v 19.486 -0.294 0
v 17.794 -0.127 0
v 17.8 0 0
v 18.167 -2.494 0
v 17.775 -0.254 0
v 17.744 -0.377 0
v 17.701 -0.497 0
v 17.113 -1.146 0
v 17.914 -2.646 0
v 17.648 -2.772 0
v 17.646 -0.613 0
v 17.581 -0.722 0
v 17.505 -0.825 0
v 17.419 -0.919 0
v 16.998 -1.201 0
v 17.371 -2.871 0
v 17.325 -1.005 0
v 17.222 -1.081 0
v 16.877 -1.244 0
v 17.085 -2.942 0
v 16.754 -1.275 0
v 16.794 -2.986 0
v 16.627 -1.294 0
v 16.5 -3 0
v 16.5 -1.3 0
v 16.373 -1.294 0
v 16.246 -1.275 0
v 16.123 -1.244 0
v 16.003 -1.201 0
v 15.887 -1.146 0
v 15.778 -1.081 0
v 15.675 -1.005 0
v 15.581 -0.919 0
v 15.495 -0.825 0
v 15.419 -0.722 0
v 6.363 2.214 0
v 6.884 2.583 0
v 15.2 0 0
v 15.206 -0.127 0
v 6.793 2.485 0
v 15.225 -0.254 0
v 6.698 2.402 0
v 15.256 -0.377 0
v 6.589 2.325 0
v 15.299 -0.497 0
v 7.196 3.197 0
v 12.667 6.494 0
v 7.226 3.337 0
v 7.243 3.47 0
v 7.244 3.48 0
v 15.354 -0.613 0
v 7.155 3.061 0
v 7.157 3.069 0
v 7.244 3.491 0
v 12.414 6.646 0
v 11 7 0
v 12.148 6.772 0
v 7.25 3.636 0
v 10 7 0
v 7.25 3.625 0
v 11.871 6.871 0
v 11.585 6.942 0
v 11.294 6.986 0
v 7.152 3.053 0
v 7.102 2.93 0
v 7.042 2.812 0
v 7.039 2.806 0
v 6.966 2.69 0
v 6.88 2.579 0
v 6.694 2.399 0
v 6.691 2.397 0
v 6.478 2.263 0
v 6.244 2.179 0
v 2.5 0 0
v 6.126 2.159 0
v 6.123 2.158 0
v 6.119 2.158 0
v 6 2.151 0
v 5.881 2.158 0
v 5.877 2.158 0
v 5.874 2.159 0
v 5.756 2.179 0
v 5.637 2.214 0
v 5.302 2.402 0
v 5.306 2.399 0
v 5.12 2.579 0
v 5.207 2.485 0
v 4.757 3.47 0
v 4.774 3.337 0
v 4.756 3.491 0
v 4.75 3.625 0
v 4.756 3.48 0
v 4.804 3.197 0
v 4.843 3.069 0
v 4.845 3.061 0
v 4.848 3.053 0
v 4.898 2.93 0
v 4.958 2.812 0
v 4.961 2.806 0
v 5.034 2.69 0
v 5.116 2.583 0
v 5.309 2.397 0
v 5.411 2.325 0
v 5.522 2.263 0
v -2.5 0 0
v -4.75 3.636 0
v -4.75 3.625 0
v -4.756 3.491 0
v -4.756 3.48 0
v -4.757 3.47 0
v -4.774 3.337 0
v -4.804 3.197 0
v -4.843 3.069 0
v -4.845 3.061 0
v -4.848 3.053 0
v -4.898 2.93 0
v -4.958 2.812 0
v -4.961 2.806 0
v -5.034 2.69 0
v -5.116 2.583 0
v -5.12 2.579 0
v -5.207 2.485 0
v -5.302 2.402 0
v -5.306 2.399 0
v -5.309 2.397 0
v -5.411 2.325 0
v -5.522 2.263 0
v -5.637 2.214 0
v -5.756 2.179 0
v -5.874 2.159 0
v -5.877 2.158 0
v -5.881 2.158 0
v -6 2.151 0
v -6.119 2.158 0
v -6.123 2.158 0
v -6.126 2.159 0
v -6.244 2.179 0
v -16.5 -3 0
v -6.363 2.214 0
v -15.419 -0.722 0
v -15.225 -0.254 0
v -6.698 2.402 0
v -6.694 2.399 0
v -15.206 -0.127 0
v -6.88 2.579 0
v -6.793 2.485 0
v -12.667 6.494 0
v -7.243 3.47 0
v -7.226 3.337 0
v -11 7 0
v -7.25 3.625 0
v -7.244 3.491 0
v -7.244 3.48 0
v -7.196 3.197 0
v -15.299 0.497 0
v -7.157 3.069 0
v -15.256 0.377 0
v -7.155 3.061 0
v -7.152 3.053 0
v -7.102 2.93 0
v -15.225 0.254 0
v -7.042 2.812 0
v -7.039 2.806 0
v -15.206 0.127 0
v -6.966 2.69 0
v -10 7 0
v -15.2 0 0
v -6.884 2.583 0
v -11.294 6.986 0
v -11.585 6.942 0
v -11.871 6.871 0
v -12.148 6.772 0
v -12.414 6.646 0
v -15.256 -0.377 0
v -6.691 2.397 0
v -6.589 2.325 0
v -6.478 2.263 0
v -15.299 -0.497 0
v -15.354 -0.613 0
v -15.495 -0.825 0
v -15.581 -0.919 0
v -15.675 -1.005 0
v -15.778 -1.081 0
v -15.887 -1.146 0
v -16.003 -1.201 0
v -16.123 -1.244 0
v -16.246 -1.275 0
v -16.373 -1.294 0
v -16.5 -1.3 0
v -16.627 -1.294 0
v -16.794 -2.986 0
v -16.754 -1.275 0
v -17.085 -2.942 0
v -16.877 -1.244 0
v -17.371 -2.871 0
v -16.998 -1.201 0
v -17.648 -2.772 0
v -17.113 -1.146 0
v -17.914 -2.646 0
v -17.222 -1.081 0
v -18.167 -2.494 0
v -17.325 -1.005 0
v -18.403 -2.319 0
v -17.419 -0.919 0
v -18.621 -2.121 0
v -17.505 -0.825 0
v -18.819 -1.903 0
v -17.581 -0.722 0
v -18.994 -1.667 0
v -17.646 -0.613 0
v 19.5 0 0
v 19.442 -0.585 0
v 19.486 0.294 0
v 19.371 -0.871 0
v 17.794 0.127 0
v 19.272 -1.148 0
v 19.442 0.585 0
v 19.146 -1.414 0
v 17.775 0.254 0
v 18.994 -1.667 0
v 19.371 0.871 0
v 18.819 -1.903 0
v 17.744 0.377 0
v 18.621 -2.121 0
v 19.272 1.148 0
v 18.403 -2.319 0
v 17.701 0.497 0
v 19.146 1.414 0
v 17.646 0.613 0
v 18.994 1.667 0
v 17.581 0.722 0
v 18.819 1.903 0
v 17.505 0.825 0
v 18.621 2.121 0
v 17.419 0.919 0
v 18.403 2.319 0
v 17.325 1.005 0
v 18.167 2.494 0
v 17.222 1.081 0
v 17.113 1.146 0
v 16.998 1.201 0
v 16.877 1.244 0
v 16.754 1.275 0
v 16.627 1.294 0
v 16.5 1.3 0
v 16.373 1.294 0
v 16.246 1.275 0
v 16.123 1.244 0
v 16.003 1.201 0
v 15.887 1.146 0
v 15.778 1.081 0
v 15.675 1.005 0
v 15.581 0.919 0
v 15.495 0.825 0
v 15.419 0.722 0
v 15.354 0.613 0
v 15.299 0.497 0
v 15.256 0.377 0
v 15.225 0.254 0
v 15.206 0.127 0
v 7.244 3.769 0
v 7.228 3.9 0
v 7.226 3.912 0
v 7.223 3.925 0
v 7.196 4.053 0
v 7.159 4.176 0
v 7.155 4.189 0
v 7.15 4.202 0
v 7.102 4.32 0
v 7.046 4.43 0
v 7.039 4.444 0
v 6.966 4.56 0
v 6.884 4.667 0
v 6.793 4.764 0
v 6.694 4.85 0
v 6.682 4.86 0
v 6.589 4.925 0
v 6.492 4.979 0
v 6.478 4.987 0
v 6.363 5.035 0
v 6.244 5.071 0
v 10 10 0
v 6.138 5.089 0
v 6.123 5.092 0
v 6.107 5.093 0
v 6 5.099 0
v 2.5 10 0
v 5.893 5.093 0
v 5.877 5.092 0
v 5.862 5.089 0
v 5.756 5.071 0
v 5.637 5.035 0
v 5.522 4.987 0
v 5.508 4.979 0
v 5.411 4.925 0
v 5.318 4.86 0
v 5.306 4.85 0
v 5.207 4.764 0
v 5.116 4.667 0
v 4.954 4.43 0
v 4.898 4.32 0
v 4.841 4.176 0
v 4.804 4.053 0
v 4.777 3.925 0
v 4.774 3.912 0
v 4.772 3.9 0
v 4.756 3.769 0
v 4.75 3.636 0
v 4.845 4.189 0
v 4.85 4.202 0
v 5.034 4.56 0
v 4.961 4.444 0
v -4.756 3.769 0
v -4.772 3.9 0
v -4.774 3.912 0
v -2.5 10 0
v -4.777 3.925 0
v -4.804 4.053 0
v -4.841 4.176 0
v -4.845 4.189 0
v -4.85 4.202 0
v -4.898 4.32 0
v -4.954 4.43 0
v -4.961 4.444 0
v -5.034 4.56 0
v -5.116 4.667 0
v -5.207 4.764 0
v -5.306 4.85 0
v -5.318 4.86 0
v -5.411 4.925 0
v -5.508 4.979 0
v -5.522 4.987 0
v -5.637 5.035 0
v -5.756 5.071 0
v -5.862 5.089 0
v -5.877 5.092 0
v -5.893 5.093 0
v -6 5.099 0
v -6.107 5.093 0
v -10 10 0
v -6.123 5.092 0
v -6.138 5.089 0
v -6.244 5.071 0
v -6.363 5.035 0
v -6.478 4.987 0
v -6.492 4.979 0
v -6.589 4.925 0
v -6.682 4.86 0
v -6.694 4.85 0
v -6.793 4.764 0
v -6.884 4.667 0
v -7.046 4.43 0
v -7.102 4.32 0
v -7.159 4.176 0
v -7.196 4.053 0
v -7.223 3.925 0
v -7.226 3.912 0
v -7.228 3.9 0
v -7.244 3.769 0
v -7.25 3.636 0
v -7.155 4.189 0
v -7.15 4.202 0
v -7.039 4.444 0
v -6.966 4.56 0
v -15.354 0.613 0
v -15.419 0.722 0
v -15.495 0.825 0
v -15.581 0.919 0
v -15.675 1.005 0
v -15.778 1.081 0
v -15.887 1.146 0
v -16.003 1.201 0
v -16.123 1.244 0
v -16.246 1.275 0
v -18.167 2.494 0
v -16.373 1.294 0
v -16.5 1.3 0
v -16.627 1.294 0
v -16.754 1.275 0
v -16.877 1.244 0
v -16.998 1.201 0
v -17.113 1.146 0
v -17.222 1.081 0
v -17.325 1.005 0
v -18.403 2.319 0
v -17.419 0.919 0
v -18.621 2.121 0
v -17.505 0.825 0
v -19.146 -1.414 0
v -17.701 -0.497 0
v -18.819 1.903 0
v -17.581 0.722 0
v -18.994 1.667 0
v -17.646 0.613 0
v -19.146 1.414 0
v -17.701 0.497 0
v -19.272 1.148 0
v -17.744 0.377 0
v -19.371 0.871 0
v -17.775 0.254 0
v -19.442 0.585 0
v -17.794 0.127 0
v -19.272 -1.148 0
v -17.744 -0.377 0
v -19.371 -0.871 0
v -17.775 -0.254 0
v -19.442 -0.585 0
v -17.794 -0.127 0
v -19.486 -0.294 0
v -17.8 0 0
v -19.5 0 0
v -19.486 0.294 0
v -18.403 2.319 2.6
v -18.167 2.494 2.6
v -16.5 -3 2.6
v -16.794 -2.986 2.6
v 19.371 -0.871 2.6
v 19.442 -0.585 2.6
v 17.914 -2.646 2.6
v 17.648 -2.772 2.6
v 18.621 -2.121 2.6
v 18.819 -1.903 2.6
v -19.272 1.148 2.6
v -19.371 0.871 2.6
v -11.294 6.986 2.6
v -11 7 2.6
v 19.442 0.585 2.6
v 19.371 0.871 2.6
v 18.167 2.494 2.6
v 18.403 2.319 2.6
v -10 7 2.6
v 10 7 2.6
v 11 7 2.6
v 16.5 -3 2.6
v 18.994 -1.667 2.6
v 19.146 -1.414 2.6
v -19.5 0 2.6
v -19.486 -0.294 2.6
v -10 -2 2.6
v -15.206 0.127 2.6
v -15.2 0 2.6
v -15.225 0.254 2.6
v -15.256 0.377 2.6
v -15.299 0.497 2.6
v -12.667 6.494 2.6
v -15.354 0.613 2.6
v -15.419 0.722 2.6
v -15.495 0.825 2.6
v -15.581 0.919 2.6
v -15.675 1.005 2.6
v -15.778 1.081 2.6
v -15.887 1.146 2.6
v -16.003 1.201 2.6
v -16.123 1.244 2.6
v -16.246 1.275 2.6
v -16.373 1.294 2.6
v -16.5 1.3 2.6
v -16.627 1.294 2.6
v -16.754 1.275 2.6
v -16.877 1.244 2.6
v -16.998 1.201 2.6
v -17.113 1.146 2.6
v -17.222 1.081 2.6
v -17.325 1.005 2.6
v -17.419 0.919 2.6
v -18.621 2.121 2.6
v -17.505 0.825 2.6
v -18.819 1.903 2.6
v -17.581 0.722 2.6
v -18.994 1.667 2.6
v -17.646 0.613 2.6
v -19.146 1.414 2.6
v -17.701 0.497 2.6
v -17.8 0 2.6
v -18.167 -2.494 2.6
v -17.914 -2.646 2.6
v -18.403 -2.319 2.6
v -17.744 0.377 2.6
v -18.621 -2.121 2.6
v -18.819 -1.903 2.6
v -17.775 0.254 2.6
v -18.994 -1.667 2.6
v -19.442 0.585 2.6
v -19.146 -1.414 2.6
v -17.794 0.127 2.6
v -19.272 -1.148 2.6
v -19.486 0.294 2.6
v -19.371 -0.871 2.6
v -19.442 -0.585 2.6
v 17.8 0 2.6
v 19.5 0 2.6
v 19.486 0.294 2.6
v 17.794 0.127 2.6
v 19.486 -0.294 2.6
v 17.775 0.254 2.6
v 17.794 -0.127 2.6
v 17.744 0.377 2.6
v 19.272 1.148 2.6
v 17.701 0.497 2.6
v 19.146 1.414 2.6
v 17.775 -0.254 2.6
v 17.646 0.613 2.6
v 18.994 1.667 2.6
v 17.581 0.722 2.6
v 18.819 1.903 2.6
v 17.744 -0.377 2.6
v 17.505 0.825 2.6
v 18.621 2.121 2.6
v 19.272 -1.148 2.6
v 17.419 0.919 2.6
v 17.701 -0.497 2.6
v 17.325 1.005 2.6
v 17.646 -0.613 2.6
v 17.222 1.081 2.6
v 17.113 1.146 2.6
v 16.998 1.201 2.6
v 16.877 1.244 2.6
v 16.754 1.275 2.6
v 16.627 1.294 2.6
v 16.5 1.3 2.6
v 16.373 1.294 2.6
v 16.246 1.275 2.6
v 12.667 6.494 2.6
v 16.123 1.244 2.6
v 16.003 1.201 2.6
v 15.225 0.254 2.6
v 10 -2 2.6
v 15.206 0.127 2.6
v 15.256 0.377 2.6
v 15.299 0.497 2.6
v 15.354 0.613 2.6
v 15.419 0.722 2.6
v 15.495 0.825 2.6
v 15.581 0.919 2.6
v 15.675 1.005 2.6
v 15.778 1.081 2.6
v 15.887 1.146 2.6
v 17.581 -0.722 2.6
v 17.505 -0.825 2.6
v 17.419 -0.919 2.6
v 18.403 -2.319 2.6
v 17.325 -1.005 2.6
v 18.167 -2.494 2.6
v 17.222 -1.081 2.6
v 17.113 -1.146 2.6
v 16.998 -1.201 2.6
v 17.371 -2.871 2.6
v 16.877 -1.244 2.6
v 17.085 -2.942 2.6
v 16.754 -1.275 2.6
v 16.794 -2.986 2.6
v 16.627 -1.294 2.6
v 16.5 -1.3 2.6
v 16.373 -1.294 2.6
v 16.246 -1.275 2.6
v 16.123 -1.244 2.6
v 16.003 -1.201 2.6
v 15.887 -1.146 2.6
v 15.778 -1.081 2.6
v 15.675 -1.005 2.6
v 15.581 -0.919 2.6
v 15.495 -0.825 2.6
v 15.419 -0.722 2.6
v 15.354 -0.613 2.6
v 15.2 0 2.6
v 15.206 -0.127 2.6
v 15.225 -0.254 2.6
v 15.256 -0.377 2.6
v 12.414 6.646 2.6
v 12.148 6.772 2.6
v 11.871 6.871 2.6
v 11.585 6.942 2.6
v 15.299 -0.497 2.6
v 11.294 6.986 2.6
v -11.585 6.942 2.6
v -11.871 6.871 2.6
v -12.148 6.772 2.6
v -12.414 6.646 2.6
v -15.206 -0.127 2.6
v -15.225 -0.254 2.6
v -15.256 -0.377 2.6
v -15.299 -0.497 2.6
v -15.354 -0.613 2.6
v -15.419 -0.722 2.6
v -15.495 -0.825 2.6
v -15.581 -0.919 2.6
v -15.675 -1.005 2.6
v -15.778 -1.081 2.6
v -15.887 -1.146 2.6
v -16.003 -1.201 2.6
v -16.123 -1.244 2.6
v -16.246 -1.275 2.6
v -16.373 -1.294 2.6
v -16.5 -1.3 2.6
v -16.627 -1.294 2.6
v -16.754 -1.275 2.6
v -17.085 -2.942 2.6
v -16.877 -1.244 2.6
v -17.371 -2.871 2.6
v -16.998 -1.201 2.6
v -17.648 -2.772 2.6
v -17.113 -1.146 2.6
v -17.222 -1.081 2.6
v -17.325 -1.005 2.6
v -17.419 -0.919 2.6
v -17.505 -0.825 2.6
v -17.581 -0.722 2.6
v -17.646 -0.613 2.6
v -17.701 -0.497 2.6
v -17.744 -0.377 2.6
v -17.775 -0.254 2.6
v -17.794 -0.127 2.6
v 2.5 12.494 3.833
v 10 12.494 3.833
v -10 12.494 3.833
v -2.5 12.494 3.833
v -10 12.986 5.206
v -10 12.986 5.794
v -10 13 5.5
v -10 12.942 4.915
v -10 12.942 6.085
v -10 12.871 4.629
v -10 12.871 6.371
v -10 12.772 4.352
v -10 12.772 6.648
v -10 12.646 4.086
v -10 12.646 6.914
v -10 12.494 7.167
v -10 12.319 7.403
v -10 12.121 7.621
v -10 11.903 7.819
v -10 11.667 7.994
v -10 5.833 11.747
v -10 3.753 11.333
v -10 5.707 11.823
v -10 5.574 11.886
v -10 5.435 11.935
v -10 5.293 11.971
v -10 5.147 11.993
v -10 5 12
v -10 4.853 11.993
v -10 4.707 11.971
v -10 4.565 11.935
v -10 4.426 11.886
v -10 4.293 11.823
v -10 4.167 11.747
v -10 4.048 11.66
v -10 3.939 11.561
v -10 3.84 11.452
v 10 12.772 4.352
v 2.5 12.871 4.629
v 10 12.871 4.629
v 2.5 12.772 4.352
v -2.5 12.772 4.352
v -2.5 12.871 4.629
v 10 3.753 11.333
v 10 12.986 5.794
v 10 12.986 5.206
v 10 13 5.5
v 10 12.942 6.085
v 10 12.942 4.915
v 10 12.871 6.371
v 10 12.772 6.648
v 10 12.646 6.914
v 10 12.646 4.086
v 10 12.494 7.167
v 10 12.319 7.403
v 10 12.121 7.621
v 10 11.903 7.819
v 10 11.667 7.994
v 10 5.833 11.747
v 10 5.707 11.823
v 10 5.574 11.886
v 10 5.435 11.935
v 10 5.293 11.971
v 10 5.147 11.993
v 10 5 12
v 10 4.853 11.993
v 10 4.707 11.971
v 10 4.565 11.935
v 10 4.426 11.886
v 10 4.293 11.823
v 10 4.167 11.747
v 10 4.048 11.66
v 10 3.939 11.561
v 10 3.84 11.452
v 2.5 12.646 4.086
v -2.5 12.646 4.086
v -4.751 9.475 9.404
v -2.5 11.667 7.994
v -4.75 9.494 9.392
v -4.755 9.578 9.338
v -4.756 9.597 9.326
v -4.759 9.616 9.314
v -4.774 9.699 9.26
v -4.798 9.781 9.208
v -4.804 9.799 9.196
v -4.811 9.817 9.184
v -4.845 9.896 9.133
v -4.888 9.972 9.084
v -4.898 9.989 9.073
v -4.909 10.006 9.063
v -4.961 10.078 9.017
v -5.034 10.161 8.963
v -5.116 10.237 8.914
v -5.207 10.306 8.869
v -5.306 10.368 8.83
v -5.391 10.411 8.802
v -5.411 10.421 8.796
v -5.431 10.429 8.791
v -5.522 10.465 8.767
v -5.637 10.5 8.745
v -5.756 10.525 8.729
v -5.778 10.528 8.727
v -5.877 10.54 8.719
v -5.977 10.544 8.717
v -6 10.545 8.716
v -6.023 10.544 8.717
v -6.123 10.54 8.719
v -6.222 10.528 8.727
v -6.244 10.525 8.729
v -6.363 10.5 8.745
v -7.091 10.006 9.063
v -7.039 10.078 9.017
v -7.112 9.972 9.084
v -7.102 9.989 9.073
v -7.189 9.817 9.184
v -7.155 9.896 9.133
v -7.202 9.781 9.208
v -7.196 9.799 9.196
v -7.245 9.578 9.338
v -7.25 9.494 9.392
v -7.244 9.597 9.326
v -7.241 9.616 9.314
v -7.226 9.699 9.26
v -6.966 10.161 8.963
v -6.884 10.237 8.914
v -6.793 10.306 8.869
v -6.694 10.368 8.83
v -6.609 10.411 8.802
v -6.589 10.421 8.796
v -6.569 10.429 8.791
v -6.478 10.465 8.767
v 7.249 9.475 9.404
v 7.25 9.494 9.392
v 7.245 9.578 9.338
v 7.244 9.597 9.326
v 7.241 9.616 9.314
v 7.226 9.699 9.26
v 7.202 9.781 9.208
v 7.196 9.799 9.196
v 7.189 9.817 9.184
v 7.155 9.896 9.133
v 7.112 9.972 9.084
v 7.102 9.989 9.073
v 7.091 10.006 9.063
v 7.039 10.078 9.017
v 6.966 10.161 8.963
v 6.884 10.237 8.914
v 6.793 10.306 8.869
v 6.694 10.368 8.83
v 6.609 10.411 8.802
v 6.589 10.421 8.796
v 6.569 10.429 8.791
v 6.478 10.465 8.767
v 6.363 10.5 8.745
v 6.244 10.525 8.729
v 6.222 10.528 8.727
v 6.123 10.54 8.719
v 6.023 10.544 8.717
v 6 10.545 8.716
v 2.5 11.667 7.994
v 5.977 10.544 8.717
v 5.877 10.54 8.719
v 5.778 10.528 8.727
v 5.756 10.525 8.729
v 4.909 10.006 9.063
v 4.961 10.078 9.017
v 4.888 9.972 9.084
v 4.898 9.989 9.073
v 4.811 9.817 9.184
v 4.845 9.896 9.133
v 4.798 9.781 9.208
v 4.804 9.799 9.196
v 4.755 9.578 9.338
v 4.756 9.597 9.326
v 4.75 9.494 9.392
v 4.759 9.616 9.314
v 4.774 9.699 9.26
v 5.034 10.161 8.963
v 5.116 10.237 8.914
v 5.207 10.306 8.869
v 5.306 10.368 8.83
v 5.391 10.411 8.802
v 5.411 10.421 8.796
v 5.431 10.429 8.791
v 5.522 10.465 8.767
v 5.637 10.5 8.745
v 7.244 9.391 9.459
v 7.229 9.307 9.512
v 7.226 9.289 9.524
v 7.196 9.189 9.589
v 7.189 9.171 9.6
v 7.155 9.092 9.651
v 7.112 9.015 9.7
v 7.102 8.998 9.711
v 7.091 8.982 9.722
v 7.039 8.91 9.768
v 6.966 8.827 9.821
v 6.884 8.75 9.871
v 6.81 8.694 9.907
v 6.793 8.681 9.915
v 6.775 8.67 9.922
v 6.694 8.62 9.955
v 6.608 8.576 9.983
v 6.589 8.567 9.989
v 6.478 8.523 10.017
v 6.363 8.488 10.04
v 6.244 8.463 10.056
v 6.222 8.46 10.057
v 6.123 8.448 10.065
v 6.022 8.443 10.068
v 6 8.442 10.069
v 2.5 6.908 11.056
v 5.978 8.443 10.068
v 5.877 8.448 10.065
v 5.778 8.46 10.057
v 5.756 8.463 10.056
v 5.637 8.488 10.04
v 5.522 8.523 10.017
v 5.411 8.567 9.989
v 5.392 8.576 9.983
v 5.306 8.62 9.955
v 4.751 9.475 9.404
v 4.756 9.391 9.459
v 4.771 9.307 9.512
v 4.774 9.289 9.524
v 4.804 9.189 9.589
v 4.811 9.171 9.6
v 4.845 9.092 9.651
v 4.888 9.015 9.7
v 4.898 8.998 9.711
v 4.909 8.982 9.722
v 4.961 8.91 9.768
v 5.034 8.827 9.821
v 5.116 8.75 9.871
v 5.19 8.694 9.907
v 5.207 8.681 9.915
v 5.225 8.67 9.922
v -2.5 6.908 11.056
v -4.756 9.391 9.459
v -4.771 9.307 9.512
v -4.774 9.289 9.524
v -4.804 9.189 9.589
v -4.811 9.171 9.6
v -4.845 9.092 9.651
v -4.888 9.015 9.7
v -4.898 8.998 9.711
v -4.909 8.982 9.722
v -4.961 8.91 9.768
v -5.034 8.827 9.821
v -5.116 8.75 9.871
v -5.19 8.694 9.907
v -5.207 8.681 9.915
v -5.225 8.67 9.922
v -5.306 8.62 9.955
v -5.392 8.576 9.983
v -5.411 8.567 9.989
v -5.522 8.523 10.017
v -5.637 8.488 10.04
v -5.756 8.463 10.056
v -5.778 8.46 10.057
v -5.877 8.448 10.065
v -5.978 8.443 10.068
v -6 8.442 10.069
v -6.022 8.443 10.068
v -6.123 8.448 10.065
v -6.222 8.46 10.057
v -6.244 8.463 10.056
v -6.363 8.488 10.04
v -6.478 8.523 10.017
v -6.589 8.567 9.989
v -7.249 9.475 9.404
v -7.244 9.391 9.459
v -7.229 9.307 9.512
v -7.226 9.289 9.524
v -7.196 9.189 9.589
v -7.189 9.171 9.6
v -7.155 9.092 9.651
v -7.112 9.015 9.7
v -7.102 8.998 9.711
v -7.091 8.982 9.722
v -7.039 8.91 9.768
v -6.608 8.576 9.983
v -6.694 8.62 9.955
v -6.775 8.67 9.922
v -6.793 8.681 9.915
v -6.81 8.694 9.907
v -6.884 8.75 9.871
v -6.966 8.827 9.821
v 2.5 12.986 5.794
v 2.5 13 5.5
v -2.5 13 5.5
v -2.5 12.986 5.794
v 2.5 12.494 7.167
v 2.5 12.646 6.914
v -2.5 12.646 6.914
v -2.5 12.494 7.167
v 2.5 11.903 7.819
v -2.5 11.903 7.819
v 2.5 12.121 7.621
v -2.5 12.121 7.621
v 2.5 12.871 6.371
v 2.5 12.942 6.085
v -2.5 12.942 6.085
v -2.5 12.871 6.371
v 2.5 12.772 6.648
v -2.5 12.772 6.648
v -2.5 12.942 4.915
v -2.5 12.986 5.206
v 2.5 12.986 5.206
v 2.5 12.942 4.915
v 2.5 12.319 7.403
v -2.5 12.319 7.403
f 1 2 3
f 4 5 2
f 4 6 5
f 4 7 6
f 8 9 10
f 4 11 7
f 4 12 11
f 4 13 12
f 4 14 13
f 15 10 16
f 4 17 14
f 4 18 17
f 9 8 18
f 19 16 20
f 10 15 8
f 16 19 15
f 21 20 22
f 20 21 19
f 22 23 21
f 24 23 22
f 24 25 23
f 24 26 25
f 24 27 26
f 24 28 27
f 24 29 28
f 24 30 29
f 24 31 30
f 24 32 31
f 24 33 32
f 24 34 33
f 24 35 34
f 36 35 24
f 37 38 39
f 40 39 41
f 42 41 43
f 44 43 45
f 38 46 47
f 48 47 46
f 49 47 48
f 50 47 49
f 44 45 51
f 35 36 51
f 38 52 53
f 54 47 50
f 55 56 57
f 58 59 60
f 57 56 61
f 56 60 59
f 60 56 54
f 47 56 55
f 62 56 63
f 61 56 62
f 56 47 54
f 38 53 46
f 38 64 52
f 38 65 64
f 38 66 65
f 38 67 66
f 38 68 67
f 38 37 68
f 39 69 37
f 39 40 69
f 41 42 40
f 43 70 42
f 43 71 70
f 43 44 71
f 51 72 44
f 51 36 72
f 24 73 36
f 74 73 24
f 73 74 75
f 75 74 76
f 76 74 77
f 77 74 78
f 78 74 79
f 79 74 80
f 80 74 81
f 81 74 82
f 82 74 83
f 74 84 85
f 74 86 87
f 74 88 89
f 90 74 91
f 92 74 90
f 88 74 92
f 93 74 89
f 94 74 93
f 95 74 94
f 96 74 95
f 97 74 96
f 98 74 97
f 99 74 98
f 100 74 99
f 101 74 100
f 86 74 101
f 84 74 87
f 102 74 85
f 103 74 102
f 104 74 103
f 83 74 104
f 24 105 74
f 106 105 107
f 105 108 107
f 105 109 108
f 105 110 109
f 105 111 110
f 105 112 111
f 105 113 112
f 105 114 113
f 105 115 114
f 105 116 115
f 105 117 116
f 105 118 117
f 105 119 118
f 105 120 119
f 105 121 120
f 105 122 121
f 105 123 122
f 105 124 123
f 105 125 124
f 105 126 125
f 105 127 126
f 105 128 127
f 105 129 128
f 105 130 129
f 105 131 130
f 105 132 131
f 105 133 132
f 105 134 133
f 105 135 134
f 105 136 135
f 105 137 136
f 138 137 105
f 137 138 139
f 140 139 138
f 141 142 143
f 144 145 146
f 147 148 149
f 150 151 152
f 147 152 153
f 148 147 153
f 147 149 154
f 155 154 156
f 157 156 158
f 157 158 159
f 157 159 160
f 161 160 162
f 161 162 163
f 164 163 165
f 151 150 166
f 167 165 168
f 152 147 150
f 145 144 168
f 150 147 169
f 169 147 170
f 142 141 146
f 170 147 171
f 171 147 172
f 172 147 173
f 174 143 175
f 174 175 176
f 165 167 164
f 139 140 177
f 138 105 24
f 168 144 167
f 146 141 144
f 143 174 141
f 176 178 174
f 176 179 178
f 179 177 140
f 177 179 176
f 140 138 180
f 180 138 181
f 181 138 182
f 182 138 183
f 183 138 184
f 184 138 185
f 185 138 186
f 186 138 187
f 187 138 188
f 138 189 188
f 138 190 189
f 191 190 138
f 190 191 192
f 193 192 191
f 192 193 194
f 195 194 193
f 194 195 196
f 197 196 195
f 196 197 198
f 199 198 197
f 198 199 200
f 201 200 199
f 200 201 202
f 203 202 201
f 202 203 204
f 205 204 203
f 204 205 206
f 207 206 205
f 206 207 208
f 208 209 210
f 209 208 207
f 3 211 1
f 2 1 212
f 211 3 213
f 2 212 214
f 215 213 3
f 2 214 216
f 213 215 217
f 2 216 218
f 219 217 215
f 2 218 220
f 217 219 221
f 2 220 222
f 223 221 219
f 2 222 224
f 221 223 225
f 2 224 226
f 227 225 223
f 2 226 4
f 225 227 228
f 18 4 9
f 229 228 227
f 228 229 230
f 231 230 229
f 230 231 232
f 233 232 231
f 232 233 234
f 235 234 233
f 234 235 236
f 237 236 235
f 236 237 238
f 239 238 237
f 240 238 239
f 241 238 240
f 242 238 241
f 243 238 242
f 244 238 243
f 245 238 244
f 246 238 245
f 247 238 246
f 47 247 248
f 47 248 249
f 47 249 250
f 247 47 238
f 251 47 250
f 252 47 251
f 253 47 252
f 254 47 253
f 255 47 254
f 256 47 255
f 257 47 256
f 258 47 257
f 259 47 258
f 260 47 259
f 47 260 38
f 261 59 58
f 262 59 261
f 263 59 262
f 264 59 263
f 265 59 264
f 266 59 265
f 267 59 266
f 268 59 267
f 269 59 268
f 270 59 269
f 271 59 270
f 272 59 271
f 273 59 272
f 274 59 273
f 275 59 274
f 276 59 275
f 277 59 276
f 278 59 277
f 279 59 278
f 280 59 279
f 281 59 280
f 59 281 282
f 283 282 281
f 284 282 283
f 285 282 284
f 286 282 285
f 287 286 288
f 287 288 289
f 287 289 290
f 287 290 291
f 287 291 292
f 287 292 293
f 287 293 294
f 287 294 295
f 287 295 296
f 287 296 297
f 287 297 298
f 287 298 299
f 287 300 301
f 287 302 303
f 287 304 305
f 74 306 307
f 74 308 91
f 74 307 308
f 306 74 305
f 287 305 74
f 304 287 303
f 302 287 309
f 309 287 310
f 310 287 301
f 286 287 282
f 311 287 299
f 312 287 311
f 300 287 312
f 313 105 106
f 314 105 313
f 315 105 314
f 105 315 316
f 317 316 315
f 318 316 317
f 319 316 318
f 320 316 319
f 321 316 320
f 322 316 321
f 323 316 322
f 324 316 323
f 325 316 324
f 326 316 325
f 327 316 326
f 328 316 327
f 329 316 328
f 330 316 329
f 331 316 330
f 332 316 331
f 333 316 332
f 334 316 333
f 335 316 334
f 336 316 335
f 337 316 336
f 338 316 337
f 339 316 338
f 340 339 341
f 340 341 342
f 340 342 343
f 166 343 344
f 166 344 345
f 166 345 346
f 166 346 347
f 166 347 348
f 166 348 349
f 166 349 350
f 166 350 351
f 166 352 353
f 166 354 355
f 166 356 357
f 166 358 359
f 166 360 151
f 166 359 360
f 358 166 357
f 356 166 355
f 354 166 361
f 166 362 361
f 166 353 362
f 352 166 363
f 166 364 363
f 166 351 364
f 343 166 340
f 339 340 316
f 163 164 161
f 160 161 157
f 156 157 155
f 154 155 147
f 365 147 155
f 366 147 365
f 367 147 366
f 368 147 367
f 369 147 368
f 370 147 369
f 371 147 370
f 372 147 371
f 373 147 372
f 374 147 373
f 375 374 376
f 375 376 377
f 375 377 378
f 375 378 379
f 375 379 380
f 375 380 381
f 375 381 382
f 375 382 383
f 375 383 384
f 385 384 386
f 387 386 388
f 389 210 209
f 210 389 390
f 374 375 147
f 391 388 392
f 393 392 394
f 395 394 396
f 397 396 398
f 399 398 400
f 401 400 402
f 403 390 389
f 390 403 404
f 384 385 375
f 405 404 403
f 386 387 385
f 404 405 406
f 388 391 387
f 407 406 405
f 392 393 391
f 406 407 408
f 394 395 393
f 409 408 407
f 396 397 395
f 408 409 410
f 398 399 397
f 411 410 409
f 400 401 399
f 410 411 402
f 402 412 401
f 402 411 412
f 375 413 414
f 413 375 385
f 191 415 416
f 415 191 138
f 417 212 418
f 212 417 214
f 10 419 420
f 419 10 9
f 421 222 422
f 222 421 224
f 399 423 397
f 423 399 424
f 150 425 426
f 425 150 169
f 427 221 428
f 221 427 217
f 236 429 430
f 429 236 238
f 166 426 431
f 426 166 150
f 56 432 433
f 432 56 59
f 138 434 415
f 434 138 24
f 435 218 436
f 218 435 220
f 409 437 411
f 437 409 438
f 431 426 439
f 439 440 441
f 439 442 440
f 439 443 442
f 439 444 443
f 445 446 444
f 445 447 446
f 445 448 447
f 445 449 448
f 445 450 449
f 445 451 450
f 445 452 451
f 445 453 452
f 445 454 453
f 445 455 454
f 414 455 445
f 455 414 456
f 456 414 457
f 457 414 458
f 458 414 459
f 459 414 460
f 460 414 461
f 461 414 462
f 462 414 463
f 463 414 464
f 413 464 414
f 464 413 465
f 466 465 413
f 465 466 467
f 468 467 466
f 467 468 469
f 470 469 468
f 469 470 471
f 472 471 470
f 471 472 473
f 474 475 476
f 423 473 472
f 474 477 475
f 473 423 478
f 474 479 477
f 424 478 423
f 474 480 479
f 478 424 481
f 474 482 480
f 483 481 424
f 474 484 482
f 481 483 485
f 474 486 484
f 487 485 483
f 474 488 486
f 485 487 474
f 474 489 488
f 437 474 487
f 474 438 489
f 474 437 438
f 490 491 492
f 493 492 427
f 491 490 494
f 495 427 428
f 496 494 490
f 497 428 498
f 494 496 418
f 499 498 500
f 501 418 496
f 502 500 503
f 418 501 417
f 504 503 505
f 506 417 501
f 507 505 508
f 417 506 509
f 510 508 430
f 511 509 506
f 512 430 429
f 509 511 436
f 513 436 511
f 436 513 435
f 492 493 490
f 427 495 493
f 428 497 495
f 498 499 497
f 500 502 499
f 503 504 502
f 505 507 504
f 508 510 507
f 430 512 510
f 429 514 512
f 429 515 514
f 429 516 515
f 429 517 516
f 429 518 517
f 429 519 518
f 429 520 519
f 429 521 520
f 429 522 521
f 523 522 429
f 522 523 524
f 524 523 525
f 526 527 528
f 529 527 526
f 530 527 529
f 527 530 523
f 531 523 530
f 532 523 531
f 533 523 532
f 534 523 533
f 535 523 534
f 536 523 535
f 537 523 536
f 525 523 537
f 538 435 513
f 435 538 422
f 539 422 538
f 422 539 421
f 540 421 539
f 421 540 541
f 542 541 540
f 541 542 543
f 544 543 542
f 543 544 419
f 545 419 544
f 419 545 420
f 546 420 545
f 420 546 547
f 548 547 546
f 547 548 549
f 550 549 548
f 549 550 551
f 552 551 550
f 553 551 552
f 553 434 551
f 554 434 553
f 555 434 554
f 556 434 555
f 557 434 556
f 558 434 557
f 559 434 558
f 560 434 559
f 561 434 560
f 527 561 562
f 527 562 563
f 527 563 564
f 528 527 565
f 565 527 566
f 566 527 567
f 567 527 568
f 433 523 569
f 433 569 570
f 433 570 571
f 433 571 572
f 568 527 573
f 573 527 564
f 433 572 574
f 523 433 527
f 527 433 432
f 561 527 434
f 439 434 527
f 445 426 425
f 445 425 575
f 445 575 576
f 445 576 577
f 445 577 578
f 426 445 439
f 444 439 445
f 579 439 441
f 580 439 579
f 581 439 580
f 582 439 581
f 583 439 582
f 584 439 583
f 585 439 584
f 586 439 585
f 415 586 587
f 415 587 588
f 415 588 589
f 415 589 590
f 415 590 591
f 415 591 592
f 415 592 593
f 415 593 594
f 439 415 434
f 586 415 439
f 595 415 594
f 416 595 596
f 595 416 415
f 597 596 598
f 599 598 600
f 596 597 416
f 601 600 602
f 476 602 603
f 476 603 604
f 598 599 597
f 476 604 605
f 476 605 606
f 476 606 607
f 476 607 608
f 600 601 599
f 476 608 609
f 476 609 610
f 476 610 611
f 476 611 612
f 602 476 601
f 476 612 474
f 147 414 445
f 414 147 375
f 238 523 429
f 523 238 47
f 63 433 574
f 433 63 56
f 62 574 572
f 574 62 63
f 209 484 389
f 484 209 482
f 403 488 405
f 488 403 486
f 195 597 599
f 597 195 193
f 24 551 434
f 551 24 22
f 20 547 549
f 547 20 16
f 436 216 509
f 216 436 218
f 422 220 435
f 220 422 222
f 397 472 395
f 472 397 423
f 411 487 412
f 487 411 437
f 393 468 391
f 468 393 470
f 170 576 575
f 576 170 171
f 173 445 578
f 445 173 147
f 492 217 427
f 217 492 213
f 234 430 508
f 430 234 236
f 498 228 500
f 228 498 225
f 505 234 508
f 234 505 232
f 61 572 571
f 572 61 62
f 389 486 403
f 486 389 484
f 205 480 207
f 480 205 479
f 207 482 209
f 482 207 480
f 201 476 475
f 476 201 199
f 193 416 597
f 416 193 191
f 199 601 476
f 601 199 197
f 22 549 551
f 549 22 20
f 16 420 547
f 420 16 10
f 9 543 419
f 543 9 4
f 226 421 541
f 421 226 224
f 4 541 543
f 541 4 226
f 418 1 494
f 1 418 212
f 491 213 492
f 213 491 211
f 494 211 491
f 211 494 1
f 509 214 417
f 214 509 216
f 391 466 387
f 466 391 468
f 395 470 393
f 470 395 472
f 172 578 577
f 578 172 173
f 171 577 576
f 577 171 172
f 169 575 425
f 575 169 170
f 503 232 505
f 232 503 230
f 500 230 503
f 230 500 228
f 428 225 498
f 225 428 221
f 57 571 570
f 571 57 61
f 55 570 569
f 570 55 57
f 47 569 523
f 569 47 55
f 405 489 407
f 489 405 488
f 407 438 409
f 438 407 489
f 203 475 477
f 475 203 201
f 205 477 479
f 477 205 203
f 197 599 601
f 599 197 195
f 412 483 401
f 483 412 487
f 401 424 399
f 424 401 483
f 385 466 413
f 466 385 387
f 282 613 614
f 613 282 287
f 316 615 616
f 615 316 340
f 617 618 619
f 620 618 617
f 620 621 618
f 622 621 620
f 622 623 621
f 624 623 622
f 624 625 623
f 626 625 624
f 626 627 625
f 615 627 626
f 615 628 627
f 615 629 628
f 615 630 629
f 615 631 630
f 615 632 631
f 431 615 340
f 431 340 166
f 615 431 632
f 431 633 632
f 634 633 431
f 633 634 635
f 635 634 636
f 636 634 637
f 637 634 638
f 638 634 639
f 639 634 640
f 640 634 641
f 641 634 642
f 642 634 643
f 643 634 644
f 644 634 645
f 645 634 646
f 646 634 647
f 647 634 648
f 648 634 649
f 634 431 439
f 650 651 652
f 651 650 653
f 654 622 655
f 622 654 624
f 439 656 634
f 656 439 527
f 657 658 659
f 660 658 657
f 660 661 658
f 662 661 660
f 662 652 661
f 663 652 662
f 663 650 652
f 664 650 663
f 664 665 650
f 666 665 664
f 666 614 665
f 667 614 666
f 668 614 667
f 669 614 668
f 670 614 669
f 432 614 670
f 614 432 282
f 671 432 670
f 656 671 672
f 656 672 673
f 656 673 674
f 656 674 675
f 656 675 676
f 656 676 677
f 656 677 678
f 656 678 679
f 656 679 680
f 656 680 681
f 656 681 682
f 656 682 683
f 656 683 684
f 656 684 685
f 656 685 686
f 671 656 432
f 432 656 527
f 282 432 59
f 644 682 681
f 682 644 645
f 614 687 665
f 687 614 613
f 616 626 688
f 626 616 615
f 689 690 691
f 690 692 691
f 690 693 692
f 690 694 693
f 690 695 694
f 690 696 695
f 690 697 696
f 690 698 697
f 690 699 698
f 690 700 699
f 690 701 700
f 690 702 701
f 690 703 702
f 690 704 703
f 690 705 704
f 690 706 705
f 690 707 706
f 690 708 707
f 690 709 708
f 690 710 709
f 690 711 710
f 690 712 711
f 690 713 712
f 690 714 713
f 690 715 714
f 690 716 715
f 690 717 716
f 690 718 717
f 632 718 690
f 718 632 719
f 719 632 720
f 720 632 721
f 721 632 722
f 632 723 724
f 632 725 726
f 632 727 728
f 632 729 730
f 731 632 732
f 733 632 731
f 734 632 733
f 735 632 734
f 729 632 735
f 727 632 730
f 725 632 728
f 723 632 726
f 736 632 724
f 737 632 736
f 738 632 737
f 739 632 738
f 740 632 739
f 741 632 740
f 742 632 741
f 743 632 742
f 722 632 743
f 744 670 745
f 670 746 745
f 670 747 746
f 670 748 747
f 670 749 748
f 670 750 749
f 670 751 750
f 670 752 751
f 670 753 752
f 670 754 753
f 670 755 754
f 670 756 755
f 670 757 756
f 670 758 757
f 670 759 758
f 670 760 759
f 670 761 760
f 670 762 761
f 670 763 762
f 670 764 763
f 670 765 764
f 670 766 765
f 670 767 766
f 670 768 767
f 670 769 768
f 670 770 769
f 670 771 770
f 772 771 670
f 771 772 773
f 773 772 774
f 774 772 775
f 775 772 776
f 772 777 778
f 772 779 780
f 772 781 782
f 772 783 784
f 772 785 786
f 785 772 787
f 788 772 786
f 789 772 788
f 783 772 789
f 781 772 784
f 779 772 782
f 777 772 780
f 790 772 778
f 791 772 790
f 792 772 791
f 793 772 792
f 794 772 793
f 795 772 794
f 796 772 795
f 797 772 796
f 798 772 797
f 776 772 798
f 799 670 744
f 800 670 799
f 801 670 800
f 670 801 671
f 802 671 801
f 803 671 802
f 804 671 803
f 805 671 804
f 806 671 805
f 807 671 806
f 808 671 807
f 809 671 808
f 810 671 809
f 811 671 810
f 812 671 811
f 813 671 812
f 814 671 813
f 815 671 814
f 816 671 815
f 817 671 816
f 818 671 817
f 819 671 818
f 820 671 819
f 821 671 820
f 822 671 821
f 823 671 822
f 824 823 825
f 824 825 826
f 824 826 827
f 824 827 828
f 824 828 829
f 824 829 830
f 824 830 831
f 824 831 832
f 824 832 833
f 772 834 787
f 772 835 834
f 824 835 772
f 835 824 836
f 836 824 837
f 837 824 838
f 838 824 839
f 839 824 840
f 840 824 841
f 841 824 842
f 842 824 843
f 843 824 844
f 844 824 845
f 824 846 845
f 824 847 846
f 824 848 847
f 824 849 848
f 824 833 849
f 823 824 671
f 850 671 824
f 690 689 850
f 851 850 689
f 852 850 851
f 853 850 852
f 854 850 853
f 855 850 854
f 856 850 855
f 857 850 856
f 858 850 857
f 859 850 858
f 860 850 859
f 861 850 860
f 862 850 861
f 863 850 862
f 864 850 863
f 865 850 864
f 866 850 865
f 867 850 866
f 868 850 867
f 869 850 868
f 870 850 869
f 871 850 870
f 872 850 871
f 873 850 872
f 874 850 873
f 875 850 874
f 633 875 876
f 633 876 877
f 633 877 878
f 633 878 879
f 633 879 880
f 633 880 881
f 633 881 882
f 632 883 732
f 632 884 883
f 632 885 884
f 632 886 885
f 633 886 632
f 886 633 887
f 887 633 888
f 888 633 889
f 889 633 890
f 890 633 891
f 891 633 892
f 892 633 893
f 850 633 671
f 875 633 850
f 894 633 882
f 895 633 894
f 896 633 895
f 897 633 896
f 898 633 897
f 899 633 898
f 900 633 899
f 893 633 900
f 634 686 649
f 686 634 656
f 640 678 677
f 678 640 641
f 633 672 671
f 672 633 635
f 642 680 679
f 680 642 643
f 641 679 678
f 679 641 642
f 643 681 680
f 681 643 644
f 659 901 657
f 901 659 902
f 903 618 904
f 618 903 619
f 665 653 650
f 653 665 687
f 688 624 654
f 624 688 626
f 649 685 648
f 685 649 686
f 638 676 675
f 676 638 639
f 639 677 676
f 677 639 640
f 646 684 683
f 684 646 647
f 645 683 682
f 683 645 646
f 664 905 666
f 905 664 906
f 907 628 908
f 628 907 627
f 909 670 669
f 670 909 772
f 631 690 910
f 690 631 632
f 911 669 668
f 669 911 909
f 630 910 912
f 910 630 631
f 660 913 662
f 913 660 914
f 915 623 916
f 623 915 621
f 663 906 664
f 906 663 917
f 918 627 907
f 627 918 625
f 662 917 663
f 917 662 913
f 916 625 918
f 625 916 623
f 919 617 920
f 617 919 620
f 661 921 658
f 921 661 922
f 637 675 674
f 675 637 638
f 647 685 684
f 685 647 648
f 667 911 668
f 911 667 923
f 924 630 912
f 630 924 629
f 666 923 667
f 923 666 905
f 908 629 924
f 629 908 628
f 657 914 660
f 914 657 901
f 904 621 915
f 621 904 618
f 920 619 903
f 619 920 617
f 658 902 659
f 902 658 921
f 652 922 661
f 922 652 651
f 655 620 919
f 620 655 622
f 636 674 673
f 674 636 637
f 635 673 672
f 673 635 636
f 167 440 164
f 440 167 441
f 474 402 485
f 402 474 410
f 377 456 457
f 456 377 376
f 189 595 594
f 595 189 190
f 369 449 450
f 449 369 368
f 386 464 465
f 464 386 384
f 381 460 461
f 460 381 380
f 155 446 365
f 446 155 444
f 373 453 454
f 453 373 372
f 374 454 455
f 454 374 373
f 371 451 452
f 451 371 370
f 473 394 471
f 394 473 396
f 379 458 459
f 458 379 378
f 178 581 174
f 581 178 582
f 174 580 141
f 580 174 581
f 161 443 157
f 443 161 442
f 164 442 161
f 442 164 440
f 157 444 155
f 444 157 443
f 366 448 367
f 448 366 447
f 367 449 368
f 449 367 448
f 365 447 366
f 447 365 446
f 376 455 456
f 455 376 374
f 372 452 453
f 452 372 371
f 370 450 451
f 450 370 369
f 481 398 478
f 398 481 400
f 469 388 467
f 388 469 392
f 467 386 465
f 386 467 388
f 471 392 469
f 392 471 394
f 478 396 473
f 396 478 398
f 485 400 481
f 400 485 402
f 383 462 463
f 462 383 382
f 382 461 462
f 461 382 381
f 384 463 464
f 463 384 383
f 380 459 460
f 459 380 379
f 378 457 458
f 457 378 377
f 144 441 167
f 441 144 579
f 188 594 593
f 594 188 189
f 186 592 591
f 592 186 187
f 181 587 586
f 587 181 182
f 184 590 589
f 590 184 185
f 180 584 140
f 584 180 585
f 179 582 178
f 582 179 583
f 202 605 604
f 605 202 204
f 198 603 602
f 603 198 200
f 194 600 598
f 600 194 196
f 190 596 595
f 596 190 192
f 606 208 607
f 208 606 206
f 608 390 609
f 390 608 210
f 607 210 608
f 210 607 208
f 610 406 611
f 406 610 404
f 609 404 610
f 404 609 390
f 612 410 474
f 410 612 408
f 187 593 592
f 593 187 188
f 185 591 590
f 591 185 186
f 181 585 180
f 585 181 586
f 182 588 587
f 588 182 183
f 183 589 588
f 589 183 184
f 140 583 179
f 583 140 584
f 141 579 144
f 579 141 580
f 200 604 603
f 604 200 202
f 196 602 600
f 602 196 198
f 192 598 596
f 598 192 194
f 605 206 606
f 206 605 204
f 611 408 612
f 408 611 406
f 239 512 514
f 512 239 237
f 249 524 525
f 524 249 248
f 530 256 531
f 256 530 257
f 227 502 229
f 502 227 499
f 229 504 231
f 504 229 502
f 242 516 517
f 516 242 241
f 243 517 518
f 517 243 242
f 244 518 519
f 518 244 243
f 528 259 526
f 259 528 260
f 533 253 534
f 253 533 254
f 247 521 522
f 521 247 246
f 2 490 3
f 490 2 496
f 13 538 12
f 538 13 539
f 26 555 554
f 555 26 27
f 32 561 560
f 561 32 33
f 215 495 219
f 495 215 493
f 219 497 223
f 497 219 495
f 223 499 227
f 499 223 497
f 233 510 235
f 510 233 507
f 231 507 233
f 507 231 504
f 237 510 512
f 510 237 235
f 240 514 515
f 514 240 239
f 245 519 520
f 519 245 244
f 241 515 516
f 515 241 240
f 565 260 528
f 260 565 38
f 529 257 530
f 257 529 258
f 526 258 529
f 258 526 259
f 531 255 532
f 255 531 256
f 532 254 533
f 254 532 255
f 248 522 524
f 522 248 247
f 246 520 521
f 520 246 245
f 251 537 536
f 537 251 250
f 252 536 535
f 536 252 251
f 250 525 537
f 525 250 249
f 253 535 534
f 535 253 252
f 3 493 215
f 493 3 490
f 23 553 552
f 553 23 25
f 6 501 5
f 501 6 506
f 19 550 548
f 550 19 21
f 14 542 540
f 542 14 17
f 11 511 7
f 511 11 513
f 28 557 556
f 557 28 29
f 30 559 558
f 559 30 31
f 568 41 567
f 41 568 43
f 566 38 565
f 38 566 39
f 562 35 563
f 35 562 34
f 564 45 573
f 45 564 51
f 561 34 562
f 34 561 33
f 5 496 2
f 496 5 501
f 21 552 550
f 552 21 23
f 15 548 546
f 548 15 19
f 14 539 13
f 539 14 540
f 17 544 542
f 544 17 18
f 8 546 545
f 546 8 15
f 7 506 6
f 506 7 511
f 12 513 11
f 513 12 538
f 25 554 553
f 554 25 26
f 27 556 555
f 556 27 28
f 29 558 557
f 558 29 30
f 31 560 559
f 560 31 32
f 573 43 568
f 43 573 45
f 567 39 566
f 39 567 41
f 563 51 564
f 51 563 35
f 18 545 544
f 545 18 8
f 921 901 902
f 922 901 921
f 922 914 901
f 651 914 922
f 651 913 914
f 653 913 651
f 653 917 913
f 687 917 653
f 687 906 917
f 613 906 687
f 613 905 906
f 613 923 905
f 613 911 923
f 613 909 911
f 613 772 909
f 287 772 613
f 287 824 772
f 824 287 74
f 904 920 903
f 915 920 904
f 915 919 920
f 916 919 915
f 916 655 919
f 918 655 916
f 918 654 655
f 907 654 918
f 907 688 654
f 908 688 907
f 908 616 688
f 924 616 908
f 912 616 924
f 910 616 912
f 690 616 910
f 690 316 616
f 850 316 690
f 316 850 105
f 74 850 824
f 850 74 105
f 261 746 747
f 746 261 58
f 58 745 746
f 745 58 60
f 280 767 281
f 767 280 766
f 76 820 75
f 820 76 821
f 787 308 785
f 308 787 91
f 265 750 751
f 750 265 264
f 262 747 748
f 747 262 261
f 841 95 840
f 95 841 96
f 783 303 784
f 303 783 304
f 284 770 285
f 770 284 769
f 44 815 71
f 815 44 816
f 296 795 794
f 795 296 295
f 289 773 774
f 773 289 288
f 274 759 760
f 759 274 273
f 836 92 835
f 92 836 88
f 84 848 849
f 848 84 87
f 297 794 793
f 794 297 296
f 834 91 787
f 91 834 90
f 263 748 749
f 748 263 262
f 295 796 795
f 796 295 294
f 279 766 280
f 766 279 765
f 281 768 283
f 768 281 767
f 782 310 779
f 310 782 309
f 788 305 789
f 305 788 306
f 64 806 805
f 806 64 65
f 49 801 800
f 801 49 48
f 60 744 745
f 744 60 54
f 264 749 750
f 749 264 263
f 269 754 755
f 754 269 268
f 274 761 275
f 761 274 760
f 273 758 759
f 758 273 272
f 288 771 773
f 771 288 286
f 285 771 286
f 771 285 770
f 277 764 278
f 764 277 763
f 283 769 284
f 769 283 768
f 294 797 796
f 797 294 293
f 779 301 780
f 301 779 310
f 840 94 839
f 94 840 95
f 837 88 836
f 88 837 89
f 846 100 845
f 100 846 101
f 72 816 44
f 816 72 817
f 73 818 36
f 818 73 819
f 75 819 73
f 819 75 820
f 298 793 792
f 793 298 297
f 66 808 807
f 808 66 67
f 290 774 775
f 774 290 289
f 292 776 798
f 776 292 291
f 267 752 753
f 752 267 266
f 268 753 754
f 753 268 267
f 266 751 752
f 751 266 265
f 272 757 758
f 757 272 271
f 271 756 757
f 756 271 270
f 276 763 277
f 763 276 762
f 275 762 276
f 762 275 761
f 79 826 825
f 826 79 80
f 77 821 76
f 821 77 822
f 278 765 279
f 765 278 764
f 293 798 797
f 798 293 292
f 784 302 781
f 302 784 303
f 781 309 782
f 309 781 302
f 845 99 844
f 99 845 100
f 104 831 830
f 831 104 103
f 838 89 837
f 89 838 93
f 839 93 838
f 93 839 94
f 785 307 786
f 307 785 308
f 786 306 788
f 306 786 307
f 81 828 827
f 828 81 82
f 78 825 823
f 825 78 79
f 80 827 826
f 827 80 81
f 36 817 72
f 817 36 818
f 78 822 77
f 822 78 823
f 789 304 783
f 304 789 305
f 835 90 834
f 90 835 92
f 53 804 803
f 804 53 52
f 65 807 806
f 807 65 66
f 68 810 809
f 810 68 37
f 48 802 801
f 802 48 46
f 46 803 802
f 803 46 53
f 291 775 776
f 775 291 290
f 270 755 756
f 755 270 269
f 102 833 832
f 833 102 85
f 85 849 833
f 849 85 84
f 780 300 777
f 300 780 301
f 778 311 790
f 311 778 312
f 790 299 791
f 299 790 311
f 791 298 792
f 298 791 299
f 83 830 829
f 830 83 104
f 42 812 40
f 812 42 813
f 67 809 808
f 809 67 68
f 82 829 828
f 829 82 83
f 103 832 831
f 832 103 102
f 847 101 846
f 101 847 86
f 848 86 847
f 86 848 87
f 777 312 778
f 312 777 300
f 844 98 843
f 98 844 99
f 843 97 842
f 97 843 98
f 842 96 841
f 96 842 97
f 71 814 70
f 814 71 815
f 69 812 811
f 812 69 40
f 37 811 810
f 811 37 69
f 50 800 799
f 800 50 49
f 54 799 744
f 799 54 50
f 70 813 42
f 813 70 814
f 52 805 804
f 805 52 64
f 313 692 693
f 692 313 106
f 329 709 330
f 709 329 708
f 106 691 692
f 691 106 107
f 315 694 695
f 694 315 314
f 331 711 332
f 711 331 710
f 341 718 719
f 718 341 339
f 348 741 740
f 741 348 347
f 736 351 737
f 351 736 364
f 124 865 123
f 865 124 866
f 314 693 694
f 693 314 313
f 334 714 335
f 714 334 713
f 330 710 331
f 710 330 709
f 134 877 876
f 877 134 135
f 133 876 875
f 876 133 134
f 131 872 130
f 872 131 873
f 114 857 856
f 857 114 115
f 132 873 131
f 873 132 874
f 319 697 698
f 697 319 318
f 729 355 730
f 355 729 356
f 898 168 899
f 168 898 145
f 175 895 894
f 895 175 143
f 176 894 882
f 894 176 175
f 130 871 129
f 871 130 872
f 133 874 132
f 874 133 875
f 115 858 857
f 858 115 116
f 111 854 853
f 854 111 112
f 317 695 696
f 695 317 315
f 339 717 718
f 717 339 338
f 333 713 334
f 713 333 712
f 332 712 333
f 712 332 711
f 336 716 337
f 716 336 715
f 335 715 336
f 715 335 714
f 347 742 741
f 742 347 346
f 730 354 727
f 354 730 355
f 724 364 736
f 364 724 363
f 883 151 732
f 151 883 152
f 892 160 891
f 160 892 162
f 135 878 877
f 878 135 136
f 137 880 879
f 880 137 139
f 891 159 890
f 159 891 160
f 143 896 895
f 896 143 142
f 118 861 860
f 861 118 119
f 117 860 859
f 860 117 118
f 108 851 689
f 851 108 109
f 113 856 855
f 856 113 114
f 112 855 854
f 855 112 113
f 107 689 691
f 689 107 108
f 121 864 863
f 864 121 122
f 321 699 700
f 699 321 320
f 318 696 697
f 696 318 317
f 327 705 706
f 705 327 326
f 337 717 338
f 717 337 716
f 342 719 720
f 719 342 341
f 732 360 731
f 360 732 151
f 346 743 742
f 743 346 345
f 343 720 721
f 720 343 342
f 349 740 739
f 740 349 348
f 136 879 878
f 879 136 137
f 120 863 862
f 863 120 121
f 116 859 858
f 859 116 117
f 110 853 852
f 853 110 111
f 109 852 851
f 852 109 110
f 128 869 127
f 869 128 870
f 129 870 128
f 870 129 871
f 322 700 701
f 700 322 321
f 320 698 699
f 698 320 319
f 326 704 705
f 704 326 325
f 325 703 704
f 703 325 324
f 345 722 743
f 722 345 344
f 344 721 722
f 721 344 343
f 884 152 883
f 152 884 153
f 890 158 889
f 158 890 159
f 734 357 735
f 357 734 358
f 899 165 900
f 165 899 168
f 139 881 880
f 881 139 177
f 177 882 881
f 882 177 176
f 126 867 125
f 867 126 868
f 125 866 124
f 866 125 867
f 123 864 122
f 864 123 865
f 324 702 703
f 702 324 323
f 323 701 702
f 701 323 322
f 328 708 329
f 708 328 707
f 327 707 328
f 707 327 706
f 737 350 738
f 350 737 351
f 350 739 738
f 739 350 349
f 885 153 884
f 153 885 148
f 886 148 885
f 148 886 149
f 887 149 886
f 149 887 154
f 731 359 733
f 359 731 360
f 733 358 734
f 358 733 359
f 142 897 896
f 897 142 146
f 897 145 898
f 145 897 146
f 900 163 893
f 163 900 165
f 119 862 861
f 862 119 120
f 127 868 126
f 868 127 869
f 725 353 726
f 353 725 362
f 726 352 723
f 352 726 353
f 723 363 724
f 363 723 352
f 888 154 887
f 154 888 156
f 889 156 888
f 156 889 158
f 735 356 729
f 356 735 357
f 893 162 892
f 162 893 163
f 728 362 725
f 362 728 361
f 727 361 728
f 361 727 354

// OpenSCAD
$fn = 64;

spacing = 33;
plateHeight = 2.6;

difference() {
    union() {
        hull() {
            translate([-spacing/2, 0, 0]) cylinder(d = 6, h = plateHeight);
            translate([spacing/2, 0, 0]) cylinder(d = 6, h = plateHeight);
            translate([-spacing/3, 4, 0]) cylinder(d = 6, h = plateHeight);
            translate([spacing/3, 4, 0]) cylinder(d = 6, h = plateHeight);        
        }
        translate([0, 1, 0]) hull() {
            translate([-10, 9, 5.5]) rotate([0, 90, 0]) cylinder(d = 6, h = 20);
            translate([-10, 4, 10.5]) rotate([0, 90, 0]) cylinder(d = 3, h = 20);
            translate([-10, -3, 0]) cube([20, 12, plateHeight]);
        }
    }
    translate([-spacing/2, 0, -0.1]) cylinder(d = 2.6, h = plateHeight + 0.2);
    translate([spacing/2, 0, -0.1]) cylinder(d = 2.6, h = plateHeight + 0.2);
    translate([-2.5, 0, 0]) rotate([-32, 0, 0]) cube([5, 12, 15]);    
    translate([6, 3, -1]) rotate([-32, 0, 0]) cylinder(d = 2.5, h = 15);
    translate([-6, 3, -1]) rotate([-32, 0, 0]) cylinder(d = 2.5, h = 15);
}
%translate([0, 4.5, 0]) cylinder(d = 6, h = 20);
%translate([0, 4, 0]) rotate([-32, 0, 0]) cylinder(d = 6, h = 20);
